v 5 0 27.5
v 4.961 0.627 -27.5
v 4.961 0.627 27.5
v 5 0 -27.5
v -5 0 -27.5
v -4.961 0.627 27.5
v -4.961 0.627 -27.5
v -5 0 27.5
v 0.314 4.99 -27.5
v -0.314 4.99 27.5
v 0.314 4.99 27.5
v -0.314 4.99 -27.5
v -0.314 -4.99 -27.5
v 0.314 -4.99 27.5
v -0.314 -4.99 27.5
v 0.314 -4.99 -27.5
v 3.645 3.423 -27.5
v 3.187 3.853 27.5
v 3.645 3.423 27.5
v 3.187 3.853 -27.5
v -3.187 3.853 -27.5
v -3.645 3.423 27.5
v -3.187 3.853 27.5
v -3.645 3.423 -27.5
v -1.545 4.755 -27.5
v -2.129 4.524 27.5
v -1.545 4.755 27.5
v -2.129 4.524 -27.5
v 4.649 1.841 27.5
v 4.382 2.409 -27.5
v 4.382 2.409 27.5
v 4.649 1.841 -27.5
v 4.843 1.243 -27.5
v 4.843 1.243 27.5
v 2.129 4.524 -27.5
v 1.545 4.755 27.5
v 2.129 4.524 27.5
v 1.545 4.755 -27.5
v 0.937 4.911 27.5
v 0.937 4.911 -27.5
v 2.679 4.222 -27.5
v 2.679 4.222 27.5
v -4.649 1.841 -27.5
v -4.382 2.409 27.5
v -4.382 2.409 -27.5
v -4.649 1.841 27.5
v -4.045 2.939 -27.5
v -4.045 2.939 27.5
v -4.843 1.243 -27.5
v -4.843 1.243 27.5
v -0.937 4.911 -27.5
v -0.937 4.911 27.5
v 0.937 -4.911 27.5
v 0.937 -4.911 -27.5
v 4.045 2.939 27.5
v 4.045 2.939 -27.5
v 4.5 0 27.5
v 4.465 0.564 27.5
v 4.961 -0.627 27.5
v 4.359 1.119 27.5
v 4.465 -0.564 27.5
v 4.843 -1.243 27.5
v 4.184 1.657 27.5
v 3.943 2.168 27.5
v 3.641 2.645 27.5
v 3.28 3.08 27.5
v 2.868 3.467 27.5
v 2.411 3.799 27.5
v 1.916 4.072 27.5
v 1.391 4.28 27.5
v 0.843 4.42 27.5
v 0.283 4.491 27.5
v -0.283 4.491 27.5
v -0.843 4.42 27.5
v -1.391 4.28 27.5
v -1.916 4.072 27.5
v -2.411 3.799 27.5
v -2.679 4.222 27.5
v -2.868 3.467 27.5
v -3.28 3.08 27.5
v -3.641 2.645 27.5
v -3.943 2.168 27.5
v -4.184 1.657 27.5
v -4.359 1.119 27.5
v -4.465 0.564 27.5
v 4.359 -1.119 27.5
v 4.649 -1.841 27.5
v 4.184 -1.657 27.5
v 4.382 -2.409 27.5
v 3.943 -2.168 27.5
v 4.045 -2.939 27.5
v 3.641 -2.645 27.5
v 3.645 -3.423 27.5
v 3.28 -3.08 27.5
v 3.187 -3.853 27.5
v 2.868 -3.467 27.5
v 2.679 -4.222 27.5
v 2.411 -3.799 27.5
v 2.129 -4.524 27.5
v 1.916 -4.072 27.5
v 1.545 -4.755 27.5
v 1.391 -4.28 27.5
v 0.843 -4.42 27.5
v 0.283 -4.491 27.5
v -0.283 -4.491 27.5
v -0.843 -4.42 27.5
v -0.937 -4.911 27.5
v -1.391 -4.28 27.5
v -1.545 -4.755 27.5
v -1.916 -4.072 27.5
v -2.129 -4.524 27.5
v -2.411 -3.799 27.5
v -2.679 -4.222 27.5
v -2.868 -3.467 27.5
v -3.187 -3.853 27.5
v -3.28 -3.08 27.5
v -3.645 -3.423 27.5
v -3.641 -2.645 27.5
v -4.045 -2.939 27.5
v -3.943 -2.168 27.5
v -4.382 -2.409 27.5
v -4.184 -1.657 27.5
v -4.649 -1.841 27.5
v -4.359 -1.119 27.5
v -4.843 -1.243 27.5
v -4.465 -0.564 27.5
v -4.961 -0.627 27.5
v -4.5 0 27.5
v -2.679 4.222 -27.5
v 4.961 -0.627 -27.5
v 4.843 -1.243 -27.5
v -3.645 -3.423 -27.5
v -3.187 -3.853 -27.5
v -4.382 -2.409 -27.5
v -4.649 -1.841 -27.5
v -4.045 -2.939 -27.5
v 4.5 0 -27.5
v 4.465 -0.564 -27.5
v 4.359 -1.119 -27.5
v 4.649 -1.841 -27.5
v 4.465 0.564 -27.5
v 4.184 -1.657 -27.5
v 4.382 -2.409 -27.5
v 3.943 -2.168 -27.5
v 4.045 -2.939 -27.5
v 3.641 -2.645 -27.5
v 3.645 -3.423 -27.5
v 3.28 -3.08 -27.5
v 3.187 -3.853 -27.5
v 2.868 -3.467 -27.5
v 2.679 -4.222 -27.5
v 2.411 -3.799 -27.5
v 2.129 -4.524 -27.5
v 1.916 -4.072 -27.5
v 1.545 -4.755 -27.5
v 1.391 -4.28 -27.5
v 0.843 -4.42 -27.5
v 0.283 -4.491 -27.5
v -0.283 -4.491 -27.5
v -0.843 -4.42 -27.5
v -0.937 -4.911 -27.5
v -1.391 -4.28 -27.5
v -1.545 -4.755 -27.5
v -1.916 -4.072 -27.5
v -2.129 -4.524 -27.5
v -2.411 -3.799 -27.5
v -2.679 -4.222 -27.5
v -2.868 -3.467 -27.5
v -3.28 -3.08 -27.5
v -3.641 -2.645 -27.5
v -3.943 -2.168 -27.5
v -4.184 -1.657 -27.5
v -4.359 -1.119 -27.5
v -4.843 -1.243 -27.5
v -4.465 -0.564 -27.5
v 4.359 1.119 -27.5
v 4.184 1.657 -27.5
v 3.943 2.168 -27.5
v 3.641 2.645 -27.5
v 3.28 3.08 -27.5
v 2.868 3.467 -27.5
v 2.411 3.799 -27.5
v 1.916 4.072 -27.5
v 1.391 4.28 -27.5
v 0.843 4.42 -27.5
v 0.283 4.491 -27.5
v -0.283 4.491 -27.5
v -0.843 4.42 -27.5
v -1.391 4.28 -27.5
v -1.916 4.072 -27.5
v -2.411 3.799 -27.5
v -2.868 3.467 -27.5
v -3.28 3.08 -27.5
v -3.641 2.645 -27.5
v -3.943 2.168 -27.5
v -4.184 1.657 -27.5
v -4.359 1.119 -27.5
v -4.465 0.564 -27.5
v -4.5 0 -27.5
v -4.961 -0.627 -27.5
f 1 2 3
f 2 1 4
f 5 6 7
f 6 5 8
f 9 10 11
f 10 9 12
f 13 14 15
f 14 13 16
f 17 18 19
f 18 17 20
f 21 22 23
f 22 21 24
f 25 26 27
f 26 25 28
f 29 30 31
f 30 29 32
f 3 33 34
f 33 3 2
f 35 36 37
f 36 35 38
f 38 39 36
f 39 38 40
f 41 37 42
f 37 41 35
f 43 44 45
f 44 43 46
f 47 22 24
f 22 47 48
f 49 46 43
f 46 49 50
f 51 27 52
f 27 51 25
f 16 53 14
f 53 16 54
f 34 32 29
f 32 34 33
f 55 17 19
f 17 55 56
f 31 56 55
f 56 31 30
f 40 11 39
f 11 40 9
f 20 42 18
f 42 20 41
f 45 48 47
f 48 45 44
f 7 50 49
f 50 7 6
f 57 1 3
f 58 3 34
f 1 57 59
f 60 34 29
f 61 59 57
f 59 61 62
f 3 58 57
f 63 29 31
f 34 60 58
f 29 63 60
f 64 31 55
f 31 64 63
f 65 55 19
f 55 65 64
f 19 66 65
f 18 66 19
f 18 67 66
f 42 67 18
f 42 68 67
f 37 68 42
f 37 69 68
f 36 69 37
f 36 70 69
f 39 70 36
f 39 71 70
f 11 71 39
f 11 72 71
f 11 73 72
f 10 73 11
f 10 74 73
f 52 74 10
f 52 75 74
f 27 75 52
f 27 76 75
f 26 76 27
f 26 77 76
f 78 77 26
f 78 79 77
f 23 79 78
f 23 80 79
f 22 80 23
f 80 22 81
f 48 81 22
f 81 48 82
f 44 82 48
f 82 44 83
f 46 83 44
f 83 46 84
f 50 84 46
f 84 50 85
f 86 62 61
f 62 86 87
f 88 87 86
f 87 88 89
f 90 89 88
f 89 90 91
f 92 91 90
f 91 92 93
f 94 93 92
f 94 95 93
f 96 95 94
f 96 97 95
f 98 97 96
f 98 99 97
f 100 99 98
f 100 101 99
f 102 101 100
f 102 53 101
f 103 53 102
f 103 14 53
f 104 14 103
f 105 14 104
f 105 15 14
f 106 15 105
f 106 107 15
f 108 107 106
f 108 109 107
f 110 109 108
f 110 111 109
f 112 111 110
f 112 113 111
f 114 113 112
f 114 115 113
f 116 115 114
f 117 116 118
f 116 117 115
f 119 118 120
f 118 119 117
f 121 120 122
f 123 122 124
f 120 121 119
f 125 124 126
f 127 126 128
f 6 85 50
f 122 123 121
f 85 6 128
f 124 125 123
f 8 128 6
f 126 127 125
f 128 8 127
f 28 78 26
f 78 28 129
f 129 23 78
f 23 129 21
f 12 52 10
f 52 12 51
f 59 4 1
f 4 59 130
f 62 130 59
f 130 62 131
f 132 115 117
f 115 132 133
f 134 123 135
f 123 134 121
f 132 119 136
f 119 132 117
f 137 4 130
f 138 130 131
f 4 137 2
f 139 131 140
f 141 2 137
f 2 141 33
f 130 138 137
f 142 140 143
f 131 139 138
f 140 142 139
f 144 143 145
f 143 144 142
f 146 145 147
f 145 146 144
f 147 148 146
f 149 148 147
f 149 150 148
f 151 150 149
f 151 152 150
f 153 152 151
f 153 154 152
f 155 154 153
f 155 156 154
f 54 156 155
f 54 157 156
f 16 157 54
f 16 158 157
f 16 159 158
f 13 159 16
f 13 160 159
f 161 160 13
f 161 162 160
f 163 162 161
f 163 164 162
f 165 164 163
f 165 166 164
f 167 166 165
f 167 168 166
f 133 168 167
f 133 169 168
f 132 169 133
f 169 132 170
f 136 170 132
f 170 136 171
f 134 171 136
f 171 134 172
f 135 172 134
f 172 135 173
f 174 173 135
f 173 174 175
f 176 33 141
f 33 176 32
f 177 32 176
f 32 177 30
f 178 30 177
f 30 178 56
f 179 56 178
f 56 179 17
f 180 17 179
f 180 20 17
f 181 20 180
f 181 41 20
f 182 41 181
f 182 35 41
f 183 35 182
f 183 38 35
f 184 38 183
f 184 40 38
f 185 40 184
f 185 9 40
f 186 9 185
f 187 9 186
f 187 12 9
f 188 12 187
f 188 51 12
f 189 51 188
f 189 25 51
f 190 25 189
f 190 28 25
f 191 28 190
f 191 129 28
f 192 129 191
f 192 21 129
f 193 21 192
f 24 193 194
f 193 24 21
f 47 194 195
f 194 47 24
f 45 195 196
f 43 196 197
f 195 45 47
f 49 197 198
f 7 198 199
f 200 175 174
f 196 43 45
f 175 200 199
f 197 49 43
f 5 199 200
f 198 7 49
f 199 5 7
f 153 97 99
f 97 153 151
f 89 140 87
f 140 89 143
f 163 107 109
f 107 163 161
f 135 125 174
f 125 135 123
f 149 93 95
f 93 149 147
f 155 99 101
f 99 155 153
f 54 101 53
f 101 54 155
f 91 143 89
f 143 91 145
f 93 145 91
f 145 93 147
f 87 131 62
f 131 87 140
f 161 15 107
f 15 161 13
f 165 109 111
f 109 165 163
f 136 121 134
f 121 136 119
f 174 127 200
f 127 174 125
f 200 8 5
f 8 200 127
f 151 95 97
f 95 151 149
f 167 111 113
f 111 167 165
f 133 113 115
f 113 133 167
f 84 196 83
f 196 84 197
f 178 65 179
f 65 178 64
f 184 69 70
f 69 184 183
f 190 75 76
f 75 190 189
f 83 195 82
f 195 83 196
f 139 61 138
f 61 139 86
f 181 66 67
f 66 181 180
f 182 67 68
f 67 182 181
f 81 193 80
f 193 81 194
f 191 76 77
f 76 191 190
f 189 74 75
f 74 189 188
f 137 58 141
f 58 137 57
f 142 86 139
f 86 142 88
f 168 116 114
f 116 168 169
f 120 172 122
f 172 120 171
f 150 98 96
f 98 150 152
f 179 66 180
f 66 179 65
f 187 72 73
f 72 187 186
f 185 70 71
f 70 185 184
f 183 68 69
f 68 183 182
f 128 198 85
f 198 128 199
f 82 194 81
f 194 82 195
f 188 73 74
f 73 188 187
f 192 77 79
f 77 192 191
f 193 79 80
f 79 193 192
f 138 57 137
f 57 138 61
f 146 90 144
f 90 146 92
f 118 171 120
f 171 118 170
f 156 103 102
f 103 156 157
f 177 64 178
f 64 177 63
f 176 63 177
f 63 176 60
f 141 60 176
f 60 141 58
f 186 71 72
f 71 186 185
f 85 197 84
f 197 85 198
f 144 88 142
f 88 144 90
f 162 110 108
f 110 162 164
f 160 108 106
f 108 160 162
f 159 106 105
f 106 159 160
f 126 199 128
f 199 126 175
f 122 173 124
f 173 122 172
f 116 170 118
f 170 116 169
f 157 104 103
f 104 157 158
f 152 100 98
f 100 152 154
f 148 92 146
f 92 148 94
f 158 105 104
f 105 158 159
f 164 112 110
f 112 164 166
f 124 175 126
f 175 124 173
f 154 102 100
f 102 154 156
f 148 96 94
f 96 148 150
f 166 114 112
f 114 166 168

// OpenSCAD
$fn = 50;


difference() {
	union() {
		translate(v = [0, 0, -27.5000000000]) {
			cylinder(h = 55, r = 5.0000000000);
		}
	}
	union() {
		translate(v = [0, 0, -100.0000000000]) {
			cylinder(h = 200, r = 4.5000000000);
		}
	}
}
